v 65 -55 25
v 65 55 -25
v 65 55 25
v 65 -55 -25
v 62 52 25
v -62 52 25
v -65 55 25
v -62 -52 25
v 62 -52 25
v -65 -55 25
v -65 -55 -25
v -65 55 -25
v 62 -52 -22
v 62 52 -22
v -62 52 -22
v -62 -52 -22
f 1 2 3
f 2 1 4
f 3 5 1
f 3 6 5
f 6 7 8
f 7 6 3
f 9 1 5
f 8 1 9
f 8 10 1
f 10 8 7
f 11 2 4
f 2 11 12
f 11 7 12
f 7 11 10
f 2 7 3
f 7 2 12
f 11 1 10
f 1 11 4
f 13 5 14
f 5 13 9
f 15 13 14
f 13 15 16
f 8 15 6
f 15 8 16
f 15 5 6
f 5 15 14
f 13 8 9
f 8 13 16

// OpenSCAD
// ========================================
// a 130 x 110 x 50 mm enclosure with 3 mm wall thickness
// NeuroCAD canonical IR; dimensions are millimetres
// ========================================
$fn = 48;

difference() {
  cube(size=[130, 110, 50], center=true);
  translate([0, 0, 1.6]) {
    cube(size=[124, 104, 47.2], center=true);
  }
}
